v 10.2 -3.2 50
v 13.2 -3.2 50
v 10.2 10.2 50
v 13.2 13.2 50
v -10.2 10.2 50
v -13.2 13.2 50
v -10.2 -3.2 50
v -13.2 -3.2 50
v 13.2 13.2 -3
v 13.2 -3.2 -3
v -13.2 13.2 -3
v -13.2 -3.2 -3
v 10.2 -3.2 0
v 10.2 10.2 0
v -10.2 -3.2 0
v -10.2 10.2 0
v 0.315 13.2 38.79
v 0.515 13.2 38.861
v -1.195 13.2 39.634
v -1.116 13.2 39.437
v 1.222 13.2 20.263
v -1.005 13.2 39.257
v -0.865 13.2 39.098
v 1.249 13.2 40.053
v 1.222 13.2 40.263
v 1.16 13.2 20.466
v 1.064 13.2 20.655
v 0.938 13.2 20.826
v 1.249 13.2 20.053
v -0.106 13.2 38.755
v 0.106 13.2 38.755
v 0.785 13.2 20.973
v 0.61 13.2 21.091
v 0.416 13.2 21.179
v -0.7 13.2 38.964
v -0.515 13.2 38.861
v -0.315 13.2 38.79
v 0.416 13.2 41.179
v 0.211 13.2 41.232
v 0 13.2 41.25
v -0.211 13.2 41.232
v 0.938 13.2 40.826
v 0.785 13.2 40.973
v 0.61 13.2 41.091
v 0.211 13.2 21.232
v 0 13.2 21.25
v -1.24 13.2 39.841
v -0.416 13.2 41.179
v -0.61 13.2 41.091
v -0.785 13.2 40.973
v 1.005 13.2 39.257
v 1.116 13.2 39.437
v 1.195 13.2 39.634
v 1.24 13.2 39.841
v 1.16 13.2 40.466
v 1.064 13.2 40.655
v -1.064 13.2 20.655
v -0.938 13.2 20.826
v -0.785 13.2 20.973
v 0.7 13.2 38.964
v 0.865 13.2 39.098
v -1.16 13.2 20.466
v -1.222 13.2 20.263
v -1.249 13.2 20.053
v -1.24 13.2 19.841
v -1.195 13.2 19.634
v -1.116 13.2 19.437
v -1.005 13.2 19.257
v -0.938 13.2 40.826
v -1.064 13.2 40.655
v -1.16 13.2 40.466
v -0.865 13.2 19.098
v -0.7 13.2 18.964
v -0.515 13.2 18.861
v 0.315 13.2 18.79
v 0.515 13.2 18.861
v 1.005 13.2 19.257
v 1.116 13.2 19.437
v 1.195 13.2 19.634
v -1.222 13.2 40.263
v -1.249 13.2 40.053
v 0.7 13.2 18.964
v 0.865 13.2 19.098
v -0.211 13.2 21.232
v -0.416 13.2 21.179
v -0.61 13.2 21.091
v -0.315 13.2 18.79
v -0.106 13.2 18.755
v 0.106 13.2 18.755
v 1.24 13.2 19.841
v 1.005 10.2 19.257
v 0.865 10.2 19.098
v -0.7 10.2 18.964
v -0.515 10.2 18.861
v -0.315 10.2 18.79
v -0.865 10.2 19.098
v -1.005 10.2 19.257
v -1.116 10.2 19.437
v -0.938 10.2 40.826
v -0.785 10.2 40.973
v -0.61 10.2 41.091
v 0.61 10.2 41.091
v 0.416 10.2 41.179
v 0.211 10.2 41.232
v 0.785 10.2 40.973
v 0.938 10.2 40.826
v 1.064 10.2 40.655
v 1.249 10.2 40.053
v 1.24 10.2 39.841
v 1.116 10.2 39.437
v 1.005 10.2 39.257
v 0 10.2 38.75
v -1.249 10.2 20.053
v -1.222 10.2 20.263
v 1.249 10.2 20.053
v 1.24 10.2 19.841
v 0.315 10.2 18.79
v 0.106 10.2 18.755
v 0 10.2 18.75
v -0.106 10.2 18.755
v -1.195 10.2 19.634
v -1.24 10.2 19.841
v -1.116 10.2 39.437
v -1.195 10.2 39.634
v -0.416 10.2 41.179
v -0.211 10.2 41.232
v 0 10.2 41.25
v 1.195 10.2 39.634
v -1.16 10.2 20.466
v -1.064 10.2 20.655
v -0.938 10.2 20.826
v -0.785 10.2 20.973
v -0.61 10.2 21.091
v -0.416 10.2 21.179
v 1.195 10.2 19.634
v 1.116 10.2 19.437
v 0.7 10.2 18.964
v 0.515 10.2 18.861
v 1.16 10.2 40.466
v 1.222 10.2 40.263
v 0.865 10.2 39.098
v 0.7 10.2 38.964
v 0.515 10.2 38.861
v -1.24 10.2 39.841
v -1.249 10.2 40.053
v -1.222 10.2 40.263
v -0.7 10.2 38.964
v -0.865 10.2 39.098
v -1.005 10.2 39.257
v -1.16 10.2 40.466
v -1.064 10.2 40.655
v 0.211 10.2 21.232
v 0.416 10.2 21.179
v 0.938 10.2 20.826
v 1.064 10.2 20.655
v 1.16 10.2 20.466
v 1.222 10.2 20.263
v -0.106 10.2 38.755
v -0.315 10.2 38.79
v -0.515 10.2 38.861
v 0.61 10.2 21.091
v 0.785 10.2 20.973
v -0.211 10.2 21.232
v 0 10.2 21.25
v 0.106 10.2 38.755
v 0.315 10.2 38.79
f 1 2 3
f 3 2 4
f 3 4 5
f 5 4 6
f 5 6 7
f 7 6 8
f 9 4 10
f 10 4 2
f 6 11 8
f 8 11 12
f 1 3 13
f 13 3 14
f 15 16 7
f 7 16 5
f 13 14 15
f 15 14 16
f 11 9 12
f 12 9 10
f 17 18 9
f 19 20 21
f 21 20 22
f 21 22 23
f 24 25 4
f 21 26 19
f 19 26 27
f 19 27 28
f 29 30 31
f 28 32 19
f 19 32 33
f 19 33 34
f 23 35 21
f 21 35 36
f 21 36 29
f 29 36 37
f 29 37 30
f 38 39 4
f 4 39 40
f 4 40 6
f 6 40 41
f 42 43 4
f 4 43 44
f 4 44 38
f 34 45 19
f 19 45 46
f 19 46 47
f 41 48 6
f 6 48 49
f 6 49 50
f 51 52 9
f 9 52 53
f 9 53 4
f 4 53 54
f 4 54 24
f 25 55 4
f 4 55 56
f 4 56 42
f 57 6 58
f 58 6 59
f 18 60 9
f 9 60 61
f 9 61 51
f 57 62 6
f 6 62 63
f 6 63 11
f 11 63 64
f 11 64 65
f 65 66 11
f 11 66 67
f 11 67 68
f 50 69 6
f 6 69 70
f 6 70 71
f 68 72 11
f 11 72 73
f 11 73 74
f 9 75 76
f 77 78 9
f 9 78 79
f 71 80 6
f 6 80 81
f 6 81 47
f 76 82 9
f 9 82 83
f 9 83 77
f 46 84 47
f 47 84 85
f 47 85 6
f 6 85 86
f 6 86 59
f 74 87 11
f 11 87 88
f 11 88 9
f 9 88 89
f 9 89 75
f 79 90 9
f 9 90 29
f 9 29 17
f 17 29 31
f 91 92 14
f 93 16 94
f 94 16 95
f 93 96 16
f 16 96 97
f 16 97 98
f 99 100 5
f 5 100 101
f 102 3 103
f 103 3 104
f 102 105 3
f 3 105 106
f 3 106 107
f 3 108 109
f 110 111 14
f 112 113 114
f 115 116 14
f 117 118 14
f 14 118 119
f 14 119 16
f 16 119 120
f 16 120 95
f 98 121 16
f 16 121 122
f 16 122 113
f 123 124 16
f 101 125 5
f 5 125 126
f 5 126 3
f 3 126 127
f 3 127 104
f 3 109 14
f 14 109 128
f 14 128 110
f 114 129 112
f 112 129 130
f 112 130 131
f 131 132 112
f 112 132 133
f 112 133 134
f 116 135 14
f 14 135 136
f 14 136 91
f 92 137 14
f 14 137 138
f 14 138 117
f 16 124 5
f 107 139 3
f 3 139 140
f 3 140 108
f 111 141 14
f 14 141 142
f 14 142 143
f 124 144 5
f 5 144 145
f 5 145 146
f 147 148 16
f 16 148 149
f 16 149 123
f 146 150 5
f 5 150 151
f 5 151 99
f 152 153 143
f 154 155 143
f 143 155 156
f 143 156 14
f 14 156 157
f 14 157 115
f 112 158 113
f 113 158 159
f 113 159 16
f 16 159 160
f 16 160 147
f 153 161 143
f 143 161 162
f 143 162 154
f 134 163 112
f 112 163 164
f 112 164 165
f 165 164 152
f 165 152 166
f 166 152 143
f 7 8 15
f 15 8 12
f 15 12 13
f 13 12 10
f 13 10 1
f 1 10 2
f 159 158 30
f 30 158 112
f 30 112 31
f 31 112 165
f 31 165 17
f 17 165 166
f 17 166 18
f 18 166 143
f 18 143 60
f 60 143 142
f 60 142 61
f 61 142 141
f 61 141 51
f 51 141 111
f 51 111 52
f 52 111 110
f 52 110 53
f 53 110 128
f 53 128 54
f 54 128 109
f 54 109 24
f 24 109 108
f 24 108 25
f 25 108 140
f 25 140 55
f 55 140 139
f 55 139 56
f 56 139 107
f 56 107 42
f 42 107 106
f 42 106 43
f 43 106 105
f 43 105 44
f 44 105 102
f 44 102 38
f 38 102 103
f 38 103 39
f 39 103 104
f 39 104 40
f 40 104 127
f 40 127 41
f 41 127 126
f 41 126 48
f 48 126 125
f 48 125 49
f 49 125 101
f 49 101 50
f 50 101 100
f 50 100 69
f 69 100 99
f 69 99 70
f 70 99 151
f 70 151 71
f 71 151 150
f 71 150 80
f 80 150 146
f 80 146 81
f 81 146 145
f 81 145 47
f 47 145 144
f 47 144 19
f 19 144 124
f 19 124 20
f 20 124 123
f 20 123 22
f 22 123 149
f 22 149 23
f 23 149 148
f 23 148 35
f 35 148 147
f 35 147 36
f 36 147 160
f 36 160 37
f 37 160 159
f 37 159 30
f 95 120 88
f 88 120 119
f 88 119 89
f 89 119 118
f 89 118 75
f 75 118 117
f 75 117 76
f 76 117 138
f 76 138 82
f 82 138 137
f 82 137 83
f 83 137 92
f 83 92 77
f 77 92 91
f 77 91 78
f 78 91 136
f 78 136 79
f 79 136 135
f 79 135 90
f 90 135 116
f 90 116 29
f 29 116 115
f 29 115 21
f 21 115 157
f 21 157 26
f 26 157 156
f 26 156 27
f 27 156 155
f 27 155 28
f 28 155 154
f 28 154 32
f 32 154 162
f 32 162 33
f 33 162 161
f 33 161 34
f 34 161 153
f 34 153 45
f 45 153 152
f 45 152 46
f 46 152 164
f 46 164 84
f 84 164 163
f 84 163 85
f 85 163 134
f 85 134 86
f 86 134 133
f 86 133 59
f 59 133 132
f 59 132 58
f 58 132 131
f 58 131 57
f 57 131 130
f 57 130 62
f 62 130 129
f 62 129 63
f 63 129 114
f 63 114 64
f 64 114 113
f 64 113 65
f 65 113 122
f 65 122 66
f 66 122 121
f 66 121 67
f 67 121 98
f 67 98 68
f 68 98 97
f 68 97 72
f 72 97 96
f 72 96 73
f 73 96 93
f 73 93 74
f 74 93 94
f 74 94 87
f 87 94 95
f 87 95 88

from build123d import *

# Parameters (mm, degrees)
SKETCH2_W           = 26.4
SKETCH2_H           = 26.4
SKETCH2_W_2         = 20.4
SKETCH2_H_2         = 20.4
BOSS_EXTRUDE1_DEPTH = 50
SKETCH3_W           = 26.4
SKETCH3_H           = 26.4
BOSS_EXTRUDE2_DEPTH = 3
SKETCH4_W           = 20.4
SKETCH4_H           = 50
CUT_EXTRUDE1_DEPTH  = 3
SKETCH5_W           = 26.4
SKETCH5_H           = 53
CUT_EXTRUDE2_DEPTH  = 10
SKETCH6_R           = 1.25
CUT_EXTRUDE3_DEPTH  = 10


with BuildPart() as part:
    # Sketch2 → Boss-Extrude1 (new body)
    with BuildSketch(Plane.XY):
        Rectangle(SKETCH2_W, SKETCH2_H)
        Rectangle(SKETCH2_W_2, SKETCH2_H_2, mode=Mode.SUBTRACT)
    extrude(amount=BOSS_EXTRUDE1_DEPTH)

    # Sketch3 → Boss-Extrude2 (add)
    with BuildSketch(Plane(origin=(0, 0, 0), x_dir=(-1, 0, 0), z_dir=(0, 0, -1))):
        Rectangle(SKETCH3_W, SKETCH3_H)
    extrude(amount=BOSS_EXTRUDE2_DEPTH)

    # Sketch4 → Cut-Extrude1 (cut)
    with BuildSketch(Plane.XZ.offset(13.2)):
        with Locations((0, 25)):
            Rectangle(SKETCH4_W, SKETCH4_H)
    extrude(amount=-CUT_EXTRUDE1_DEPTH, mode=Mode.SUBTRACT)

    # Sketch5 → Cut-Extrude2 (cut)
    with BuildSketch(Plane.XZ.offset(13.2)):
        with Locations((0, 23.5)):
            Rectangle(SKETCH5_W, SKETCH5_H)
    extrude(amount=-CUT_EXTRUDE2_DEPTH, mode=Mode.SUBTRACT)

    # Sketch6 → Cut-Extrude3 (cut)
    with BuildSketch(Plane(origin=(0, 13.2, 0), x_dir=(1, 0, 0), z_dir=(0, 1, 0))):
        with Locations(Location((0, -20, 0), (0, 0, 270))):
            Circle(SKETCH6_R)
        with Locations(Location((0, -40, 0), (0, 0, 270))):
            Circle(SKETCH6_R)
    extrude(amount=-CUT_EXTRUDE3_DEPTH, mode=Mode.SUBTRACT)


solid = part.part
